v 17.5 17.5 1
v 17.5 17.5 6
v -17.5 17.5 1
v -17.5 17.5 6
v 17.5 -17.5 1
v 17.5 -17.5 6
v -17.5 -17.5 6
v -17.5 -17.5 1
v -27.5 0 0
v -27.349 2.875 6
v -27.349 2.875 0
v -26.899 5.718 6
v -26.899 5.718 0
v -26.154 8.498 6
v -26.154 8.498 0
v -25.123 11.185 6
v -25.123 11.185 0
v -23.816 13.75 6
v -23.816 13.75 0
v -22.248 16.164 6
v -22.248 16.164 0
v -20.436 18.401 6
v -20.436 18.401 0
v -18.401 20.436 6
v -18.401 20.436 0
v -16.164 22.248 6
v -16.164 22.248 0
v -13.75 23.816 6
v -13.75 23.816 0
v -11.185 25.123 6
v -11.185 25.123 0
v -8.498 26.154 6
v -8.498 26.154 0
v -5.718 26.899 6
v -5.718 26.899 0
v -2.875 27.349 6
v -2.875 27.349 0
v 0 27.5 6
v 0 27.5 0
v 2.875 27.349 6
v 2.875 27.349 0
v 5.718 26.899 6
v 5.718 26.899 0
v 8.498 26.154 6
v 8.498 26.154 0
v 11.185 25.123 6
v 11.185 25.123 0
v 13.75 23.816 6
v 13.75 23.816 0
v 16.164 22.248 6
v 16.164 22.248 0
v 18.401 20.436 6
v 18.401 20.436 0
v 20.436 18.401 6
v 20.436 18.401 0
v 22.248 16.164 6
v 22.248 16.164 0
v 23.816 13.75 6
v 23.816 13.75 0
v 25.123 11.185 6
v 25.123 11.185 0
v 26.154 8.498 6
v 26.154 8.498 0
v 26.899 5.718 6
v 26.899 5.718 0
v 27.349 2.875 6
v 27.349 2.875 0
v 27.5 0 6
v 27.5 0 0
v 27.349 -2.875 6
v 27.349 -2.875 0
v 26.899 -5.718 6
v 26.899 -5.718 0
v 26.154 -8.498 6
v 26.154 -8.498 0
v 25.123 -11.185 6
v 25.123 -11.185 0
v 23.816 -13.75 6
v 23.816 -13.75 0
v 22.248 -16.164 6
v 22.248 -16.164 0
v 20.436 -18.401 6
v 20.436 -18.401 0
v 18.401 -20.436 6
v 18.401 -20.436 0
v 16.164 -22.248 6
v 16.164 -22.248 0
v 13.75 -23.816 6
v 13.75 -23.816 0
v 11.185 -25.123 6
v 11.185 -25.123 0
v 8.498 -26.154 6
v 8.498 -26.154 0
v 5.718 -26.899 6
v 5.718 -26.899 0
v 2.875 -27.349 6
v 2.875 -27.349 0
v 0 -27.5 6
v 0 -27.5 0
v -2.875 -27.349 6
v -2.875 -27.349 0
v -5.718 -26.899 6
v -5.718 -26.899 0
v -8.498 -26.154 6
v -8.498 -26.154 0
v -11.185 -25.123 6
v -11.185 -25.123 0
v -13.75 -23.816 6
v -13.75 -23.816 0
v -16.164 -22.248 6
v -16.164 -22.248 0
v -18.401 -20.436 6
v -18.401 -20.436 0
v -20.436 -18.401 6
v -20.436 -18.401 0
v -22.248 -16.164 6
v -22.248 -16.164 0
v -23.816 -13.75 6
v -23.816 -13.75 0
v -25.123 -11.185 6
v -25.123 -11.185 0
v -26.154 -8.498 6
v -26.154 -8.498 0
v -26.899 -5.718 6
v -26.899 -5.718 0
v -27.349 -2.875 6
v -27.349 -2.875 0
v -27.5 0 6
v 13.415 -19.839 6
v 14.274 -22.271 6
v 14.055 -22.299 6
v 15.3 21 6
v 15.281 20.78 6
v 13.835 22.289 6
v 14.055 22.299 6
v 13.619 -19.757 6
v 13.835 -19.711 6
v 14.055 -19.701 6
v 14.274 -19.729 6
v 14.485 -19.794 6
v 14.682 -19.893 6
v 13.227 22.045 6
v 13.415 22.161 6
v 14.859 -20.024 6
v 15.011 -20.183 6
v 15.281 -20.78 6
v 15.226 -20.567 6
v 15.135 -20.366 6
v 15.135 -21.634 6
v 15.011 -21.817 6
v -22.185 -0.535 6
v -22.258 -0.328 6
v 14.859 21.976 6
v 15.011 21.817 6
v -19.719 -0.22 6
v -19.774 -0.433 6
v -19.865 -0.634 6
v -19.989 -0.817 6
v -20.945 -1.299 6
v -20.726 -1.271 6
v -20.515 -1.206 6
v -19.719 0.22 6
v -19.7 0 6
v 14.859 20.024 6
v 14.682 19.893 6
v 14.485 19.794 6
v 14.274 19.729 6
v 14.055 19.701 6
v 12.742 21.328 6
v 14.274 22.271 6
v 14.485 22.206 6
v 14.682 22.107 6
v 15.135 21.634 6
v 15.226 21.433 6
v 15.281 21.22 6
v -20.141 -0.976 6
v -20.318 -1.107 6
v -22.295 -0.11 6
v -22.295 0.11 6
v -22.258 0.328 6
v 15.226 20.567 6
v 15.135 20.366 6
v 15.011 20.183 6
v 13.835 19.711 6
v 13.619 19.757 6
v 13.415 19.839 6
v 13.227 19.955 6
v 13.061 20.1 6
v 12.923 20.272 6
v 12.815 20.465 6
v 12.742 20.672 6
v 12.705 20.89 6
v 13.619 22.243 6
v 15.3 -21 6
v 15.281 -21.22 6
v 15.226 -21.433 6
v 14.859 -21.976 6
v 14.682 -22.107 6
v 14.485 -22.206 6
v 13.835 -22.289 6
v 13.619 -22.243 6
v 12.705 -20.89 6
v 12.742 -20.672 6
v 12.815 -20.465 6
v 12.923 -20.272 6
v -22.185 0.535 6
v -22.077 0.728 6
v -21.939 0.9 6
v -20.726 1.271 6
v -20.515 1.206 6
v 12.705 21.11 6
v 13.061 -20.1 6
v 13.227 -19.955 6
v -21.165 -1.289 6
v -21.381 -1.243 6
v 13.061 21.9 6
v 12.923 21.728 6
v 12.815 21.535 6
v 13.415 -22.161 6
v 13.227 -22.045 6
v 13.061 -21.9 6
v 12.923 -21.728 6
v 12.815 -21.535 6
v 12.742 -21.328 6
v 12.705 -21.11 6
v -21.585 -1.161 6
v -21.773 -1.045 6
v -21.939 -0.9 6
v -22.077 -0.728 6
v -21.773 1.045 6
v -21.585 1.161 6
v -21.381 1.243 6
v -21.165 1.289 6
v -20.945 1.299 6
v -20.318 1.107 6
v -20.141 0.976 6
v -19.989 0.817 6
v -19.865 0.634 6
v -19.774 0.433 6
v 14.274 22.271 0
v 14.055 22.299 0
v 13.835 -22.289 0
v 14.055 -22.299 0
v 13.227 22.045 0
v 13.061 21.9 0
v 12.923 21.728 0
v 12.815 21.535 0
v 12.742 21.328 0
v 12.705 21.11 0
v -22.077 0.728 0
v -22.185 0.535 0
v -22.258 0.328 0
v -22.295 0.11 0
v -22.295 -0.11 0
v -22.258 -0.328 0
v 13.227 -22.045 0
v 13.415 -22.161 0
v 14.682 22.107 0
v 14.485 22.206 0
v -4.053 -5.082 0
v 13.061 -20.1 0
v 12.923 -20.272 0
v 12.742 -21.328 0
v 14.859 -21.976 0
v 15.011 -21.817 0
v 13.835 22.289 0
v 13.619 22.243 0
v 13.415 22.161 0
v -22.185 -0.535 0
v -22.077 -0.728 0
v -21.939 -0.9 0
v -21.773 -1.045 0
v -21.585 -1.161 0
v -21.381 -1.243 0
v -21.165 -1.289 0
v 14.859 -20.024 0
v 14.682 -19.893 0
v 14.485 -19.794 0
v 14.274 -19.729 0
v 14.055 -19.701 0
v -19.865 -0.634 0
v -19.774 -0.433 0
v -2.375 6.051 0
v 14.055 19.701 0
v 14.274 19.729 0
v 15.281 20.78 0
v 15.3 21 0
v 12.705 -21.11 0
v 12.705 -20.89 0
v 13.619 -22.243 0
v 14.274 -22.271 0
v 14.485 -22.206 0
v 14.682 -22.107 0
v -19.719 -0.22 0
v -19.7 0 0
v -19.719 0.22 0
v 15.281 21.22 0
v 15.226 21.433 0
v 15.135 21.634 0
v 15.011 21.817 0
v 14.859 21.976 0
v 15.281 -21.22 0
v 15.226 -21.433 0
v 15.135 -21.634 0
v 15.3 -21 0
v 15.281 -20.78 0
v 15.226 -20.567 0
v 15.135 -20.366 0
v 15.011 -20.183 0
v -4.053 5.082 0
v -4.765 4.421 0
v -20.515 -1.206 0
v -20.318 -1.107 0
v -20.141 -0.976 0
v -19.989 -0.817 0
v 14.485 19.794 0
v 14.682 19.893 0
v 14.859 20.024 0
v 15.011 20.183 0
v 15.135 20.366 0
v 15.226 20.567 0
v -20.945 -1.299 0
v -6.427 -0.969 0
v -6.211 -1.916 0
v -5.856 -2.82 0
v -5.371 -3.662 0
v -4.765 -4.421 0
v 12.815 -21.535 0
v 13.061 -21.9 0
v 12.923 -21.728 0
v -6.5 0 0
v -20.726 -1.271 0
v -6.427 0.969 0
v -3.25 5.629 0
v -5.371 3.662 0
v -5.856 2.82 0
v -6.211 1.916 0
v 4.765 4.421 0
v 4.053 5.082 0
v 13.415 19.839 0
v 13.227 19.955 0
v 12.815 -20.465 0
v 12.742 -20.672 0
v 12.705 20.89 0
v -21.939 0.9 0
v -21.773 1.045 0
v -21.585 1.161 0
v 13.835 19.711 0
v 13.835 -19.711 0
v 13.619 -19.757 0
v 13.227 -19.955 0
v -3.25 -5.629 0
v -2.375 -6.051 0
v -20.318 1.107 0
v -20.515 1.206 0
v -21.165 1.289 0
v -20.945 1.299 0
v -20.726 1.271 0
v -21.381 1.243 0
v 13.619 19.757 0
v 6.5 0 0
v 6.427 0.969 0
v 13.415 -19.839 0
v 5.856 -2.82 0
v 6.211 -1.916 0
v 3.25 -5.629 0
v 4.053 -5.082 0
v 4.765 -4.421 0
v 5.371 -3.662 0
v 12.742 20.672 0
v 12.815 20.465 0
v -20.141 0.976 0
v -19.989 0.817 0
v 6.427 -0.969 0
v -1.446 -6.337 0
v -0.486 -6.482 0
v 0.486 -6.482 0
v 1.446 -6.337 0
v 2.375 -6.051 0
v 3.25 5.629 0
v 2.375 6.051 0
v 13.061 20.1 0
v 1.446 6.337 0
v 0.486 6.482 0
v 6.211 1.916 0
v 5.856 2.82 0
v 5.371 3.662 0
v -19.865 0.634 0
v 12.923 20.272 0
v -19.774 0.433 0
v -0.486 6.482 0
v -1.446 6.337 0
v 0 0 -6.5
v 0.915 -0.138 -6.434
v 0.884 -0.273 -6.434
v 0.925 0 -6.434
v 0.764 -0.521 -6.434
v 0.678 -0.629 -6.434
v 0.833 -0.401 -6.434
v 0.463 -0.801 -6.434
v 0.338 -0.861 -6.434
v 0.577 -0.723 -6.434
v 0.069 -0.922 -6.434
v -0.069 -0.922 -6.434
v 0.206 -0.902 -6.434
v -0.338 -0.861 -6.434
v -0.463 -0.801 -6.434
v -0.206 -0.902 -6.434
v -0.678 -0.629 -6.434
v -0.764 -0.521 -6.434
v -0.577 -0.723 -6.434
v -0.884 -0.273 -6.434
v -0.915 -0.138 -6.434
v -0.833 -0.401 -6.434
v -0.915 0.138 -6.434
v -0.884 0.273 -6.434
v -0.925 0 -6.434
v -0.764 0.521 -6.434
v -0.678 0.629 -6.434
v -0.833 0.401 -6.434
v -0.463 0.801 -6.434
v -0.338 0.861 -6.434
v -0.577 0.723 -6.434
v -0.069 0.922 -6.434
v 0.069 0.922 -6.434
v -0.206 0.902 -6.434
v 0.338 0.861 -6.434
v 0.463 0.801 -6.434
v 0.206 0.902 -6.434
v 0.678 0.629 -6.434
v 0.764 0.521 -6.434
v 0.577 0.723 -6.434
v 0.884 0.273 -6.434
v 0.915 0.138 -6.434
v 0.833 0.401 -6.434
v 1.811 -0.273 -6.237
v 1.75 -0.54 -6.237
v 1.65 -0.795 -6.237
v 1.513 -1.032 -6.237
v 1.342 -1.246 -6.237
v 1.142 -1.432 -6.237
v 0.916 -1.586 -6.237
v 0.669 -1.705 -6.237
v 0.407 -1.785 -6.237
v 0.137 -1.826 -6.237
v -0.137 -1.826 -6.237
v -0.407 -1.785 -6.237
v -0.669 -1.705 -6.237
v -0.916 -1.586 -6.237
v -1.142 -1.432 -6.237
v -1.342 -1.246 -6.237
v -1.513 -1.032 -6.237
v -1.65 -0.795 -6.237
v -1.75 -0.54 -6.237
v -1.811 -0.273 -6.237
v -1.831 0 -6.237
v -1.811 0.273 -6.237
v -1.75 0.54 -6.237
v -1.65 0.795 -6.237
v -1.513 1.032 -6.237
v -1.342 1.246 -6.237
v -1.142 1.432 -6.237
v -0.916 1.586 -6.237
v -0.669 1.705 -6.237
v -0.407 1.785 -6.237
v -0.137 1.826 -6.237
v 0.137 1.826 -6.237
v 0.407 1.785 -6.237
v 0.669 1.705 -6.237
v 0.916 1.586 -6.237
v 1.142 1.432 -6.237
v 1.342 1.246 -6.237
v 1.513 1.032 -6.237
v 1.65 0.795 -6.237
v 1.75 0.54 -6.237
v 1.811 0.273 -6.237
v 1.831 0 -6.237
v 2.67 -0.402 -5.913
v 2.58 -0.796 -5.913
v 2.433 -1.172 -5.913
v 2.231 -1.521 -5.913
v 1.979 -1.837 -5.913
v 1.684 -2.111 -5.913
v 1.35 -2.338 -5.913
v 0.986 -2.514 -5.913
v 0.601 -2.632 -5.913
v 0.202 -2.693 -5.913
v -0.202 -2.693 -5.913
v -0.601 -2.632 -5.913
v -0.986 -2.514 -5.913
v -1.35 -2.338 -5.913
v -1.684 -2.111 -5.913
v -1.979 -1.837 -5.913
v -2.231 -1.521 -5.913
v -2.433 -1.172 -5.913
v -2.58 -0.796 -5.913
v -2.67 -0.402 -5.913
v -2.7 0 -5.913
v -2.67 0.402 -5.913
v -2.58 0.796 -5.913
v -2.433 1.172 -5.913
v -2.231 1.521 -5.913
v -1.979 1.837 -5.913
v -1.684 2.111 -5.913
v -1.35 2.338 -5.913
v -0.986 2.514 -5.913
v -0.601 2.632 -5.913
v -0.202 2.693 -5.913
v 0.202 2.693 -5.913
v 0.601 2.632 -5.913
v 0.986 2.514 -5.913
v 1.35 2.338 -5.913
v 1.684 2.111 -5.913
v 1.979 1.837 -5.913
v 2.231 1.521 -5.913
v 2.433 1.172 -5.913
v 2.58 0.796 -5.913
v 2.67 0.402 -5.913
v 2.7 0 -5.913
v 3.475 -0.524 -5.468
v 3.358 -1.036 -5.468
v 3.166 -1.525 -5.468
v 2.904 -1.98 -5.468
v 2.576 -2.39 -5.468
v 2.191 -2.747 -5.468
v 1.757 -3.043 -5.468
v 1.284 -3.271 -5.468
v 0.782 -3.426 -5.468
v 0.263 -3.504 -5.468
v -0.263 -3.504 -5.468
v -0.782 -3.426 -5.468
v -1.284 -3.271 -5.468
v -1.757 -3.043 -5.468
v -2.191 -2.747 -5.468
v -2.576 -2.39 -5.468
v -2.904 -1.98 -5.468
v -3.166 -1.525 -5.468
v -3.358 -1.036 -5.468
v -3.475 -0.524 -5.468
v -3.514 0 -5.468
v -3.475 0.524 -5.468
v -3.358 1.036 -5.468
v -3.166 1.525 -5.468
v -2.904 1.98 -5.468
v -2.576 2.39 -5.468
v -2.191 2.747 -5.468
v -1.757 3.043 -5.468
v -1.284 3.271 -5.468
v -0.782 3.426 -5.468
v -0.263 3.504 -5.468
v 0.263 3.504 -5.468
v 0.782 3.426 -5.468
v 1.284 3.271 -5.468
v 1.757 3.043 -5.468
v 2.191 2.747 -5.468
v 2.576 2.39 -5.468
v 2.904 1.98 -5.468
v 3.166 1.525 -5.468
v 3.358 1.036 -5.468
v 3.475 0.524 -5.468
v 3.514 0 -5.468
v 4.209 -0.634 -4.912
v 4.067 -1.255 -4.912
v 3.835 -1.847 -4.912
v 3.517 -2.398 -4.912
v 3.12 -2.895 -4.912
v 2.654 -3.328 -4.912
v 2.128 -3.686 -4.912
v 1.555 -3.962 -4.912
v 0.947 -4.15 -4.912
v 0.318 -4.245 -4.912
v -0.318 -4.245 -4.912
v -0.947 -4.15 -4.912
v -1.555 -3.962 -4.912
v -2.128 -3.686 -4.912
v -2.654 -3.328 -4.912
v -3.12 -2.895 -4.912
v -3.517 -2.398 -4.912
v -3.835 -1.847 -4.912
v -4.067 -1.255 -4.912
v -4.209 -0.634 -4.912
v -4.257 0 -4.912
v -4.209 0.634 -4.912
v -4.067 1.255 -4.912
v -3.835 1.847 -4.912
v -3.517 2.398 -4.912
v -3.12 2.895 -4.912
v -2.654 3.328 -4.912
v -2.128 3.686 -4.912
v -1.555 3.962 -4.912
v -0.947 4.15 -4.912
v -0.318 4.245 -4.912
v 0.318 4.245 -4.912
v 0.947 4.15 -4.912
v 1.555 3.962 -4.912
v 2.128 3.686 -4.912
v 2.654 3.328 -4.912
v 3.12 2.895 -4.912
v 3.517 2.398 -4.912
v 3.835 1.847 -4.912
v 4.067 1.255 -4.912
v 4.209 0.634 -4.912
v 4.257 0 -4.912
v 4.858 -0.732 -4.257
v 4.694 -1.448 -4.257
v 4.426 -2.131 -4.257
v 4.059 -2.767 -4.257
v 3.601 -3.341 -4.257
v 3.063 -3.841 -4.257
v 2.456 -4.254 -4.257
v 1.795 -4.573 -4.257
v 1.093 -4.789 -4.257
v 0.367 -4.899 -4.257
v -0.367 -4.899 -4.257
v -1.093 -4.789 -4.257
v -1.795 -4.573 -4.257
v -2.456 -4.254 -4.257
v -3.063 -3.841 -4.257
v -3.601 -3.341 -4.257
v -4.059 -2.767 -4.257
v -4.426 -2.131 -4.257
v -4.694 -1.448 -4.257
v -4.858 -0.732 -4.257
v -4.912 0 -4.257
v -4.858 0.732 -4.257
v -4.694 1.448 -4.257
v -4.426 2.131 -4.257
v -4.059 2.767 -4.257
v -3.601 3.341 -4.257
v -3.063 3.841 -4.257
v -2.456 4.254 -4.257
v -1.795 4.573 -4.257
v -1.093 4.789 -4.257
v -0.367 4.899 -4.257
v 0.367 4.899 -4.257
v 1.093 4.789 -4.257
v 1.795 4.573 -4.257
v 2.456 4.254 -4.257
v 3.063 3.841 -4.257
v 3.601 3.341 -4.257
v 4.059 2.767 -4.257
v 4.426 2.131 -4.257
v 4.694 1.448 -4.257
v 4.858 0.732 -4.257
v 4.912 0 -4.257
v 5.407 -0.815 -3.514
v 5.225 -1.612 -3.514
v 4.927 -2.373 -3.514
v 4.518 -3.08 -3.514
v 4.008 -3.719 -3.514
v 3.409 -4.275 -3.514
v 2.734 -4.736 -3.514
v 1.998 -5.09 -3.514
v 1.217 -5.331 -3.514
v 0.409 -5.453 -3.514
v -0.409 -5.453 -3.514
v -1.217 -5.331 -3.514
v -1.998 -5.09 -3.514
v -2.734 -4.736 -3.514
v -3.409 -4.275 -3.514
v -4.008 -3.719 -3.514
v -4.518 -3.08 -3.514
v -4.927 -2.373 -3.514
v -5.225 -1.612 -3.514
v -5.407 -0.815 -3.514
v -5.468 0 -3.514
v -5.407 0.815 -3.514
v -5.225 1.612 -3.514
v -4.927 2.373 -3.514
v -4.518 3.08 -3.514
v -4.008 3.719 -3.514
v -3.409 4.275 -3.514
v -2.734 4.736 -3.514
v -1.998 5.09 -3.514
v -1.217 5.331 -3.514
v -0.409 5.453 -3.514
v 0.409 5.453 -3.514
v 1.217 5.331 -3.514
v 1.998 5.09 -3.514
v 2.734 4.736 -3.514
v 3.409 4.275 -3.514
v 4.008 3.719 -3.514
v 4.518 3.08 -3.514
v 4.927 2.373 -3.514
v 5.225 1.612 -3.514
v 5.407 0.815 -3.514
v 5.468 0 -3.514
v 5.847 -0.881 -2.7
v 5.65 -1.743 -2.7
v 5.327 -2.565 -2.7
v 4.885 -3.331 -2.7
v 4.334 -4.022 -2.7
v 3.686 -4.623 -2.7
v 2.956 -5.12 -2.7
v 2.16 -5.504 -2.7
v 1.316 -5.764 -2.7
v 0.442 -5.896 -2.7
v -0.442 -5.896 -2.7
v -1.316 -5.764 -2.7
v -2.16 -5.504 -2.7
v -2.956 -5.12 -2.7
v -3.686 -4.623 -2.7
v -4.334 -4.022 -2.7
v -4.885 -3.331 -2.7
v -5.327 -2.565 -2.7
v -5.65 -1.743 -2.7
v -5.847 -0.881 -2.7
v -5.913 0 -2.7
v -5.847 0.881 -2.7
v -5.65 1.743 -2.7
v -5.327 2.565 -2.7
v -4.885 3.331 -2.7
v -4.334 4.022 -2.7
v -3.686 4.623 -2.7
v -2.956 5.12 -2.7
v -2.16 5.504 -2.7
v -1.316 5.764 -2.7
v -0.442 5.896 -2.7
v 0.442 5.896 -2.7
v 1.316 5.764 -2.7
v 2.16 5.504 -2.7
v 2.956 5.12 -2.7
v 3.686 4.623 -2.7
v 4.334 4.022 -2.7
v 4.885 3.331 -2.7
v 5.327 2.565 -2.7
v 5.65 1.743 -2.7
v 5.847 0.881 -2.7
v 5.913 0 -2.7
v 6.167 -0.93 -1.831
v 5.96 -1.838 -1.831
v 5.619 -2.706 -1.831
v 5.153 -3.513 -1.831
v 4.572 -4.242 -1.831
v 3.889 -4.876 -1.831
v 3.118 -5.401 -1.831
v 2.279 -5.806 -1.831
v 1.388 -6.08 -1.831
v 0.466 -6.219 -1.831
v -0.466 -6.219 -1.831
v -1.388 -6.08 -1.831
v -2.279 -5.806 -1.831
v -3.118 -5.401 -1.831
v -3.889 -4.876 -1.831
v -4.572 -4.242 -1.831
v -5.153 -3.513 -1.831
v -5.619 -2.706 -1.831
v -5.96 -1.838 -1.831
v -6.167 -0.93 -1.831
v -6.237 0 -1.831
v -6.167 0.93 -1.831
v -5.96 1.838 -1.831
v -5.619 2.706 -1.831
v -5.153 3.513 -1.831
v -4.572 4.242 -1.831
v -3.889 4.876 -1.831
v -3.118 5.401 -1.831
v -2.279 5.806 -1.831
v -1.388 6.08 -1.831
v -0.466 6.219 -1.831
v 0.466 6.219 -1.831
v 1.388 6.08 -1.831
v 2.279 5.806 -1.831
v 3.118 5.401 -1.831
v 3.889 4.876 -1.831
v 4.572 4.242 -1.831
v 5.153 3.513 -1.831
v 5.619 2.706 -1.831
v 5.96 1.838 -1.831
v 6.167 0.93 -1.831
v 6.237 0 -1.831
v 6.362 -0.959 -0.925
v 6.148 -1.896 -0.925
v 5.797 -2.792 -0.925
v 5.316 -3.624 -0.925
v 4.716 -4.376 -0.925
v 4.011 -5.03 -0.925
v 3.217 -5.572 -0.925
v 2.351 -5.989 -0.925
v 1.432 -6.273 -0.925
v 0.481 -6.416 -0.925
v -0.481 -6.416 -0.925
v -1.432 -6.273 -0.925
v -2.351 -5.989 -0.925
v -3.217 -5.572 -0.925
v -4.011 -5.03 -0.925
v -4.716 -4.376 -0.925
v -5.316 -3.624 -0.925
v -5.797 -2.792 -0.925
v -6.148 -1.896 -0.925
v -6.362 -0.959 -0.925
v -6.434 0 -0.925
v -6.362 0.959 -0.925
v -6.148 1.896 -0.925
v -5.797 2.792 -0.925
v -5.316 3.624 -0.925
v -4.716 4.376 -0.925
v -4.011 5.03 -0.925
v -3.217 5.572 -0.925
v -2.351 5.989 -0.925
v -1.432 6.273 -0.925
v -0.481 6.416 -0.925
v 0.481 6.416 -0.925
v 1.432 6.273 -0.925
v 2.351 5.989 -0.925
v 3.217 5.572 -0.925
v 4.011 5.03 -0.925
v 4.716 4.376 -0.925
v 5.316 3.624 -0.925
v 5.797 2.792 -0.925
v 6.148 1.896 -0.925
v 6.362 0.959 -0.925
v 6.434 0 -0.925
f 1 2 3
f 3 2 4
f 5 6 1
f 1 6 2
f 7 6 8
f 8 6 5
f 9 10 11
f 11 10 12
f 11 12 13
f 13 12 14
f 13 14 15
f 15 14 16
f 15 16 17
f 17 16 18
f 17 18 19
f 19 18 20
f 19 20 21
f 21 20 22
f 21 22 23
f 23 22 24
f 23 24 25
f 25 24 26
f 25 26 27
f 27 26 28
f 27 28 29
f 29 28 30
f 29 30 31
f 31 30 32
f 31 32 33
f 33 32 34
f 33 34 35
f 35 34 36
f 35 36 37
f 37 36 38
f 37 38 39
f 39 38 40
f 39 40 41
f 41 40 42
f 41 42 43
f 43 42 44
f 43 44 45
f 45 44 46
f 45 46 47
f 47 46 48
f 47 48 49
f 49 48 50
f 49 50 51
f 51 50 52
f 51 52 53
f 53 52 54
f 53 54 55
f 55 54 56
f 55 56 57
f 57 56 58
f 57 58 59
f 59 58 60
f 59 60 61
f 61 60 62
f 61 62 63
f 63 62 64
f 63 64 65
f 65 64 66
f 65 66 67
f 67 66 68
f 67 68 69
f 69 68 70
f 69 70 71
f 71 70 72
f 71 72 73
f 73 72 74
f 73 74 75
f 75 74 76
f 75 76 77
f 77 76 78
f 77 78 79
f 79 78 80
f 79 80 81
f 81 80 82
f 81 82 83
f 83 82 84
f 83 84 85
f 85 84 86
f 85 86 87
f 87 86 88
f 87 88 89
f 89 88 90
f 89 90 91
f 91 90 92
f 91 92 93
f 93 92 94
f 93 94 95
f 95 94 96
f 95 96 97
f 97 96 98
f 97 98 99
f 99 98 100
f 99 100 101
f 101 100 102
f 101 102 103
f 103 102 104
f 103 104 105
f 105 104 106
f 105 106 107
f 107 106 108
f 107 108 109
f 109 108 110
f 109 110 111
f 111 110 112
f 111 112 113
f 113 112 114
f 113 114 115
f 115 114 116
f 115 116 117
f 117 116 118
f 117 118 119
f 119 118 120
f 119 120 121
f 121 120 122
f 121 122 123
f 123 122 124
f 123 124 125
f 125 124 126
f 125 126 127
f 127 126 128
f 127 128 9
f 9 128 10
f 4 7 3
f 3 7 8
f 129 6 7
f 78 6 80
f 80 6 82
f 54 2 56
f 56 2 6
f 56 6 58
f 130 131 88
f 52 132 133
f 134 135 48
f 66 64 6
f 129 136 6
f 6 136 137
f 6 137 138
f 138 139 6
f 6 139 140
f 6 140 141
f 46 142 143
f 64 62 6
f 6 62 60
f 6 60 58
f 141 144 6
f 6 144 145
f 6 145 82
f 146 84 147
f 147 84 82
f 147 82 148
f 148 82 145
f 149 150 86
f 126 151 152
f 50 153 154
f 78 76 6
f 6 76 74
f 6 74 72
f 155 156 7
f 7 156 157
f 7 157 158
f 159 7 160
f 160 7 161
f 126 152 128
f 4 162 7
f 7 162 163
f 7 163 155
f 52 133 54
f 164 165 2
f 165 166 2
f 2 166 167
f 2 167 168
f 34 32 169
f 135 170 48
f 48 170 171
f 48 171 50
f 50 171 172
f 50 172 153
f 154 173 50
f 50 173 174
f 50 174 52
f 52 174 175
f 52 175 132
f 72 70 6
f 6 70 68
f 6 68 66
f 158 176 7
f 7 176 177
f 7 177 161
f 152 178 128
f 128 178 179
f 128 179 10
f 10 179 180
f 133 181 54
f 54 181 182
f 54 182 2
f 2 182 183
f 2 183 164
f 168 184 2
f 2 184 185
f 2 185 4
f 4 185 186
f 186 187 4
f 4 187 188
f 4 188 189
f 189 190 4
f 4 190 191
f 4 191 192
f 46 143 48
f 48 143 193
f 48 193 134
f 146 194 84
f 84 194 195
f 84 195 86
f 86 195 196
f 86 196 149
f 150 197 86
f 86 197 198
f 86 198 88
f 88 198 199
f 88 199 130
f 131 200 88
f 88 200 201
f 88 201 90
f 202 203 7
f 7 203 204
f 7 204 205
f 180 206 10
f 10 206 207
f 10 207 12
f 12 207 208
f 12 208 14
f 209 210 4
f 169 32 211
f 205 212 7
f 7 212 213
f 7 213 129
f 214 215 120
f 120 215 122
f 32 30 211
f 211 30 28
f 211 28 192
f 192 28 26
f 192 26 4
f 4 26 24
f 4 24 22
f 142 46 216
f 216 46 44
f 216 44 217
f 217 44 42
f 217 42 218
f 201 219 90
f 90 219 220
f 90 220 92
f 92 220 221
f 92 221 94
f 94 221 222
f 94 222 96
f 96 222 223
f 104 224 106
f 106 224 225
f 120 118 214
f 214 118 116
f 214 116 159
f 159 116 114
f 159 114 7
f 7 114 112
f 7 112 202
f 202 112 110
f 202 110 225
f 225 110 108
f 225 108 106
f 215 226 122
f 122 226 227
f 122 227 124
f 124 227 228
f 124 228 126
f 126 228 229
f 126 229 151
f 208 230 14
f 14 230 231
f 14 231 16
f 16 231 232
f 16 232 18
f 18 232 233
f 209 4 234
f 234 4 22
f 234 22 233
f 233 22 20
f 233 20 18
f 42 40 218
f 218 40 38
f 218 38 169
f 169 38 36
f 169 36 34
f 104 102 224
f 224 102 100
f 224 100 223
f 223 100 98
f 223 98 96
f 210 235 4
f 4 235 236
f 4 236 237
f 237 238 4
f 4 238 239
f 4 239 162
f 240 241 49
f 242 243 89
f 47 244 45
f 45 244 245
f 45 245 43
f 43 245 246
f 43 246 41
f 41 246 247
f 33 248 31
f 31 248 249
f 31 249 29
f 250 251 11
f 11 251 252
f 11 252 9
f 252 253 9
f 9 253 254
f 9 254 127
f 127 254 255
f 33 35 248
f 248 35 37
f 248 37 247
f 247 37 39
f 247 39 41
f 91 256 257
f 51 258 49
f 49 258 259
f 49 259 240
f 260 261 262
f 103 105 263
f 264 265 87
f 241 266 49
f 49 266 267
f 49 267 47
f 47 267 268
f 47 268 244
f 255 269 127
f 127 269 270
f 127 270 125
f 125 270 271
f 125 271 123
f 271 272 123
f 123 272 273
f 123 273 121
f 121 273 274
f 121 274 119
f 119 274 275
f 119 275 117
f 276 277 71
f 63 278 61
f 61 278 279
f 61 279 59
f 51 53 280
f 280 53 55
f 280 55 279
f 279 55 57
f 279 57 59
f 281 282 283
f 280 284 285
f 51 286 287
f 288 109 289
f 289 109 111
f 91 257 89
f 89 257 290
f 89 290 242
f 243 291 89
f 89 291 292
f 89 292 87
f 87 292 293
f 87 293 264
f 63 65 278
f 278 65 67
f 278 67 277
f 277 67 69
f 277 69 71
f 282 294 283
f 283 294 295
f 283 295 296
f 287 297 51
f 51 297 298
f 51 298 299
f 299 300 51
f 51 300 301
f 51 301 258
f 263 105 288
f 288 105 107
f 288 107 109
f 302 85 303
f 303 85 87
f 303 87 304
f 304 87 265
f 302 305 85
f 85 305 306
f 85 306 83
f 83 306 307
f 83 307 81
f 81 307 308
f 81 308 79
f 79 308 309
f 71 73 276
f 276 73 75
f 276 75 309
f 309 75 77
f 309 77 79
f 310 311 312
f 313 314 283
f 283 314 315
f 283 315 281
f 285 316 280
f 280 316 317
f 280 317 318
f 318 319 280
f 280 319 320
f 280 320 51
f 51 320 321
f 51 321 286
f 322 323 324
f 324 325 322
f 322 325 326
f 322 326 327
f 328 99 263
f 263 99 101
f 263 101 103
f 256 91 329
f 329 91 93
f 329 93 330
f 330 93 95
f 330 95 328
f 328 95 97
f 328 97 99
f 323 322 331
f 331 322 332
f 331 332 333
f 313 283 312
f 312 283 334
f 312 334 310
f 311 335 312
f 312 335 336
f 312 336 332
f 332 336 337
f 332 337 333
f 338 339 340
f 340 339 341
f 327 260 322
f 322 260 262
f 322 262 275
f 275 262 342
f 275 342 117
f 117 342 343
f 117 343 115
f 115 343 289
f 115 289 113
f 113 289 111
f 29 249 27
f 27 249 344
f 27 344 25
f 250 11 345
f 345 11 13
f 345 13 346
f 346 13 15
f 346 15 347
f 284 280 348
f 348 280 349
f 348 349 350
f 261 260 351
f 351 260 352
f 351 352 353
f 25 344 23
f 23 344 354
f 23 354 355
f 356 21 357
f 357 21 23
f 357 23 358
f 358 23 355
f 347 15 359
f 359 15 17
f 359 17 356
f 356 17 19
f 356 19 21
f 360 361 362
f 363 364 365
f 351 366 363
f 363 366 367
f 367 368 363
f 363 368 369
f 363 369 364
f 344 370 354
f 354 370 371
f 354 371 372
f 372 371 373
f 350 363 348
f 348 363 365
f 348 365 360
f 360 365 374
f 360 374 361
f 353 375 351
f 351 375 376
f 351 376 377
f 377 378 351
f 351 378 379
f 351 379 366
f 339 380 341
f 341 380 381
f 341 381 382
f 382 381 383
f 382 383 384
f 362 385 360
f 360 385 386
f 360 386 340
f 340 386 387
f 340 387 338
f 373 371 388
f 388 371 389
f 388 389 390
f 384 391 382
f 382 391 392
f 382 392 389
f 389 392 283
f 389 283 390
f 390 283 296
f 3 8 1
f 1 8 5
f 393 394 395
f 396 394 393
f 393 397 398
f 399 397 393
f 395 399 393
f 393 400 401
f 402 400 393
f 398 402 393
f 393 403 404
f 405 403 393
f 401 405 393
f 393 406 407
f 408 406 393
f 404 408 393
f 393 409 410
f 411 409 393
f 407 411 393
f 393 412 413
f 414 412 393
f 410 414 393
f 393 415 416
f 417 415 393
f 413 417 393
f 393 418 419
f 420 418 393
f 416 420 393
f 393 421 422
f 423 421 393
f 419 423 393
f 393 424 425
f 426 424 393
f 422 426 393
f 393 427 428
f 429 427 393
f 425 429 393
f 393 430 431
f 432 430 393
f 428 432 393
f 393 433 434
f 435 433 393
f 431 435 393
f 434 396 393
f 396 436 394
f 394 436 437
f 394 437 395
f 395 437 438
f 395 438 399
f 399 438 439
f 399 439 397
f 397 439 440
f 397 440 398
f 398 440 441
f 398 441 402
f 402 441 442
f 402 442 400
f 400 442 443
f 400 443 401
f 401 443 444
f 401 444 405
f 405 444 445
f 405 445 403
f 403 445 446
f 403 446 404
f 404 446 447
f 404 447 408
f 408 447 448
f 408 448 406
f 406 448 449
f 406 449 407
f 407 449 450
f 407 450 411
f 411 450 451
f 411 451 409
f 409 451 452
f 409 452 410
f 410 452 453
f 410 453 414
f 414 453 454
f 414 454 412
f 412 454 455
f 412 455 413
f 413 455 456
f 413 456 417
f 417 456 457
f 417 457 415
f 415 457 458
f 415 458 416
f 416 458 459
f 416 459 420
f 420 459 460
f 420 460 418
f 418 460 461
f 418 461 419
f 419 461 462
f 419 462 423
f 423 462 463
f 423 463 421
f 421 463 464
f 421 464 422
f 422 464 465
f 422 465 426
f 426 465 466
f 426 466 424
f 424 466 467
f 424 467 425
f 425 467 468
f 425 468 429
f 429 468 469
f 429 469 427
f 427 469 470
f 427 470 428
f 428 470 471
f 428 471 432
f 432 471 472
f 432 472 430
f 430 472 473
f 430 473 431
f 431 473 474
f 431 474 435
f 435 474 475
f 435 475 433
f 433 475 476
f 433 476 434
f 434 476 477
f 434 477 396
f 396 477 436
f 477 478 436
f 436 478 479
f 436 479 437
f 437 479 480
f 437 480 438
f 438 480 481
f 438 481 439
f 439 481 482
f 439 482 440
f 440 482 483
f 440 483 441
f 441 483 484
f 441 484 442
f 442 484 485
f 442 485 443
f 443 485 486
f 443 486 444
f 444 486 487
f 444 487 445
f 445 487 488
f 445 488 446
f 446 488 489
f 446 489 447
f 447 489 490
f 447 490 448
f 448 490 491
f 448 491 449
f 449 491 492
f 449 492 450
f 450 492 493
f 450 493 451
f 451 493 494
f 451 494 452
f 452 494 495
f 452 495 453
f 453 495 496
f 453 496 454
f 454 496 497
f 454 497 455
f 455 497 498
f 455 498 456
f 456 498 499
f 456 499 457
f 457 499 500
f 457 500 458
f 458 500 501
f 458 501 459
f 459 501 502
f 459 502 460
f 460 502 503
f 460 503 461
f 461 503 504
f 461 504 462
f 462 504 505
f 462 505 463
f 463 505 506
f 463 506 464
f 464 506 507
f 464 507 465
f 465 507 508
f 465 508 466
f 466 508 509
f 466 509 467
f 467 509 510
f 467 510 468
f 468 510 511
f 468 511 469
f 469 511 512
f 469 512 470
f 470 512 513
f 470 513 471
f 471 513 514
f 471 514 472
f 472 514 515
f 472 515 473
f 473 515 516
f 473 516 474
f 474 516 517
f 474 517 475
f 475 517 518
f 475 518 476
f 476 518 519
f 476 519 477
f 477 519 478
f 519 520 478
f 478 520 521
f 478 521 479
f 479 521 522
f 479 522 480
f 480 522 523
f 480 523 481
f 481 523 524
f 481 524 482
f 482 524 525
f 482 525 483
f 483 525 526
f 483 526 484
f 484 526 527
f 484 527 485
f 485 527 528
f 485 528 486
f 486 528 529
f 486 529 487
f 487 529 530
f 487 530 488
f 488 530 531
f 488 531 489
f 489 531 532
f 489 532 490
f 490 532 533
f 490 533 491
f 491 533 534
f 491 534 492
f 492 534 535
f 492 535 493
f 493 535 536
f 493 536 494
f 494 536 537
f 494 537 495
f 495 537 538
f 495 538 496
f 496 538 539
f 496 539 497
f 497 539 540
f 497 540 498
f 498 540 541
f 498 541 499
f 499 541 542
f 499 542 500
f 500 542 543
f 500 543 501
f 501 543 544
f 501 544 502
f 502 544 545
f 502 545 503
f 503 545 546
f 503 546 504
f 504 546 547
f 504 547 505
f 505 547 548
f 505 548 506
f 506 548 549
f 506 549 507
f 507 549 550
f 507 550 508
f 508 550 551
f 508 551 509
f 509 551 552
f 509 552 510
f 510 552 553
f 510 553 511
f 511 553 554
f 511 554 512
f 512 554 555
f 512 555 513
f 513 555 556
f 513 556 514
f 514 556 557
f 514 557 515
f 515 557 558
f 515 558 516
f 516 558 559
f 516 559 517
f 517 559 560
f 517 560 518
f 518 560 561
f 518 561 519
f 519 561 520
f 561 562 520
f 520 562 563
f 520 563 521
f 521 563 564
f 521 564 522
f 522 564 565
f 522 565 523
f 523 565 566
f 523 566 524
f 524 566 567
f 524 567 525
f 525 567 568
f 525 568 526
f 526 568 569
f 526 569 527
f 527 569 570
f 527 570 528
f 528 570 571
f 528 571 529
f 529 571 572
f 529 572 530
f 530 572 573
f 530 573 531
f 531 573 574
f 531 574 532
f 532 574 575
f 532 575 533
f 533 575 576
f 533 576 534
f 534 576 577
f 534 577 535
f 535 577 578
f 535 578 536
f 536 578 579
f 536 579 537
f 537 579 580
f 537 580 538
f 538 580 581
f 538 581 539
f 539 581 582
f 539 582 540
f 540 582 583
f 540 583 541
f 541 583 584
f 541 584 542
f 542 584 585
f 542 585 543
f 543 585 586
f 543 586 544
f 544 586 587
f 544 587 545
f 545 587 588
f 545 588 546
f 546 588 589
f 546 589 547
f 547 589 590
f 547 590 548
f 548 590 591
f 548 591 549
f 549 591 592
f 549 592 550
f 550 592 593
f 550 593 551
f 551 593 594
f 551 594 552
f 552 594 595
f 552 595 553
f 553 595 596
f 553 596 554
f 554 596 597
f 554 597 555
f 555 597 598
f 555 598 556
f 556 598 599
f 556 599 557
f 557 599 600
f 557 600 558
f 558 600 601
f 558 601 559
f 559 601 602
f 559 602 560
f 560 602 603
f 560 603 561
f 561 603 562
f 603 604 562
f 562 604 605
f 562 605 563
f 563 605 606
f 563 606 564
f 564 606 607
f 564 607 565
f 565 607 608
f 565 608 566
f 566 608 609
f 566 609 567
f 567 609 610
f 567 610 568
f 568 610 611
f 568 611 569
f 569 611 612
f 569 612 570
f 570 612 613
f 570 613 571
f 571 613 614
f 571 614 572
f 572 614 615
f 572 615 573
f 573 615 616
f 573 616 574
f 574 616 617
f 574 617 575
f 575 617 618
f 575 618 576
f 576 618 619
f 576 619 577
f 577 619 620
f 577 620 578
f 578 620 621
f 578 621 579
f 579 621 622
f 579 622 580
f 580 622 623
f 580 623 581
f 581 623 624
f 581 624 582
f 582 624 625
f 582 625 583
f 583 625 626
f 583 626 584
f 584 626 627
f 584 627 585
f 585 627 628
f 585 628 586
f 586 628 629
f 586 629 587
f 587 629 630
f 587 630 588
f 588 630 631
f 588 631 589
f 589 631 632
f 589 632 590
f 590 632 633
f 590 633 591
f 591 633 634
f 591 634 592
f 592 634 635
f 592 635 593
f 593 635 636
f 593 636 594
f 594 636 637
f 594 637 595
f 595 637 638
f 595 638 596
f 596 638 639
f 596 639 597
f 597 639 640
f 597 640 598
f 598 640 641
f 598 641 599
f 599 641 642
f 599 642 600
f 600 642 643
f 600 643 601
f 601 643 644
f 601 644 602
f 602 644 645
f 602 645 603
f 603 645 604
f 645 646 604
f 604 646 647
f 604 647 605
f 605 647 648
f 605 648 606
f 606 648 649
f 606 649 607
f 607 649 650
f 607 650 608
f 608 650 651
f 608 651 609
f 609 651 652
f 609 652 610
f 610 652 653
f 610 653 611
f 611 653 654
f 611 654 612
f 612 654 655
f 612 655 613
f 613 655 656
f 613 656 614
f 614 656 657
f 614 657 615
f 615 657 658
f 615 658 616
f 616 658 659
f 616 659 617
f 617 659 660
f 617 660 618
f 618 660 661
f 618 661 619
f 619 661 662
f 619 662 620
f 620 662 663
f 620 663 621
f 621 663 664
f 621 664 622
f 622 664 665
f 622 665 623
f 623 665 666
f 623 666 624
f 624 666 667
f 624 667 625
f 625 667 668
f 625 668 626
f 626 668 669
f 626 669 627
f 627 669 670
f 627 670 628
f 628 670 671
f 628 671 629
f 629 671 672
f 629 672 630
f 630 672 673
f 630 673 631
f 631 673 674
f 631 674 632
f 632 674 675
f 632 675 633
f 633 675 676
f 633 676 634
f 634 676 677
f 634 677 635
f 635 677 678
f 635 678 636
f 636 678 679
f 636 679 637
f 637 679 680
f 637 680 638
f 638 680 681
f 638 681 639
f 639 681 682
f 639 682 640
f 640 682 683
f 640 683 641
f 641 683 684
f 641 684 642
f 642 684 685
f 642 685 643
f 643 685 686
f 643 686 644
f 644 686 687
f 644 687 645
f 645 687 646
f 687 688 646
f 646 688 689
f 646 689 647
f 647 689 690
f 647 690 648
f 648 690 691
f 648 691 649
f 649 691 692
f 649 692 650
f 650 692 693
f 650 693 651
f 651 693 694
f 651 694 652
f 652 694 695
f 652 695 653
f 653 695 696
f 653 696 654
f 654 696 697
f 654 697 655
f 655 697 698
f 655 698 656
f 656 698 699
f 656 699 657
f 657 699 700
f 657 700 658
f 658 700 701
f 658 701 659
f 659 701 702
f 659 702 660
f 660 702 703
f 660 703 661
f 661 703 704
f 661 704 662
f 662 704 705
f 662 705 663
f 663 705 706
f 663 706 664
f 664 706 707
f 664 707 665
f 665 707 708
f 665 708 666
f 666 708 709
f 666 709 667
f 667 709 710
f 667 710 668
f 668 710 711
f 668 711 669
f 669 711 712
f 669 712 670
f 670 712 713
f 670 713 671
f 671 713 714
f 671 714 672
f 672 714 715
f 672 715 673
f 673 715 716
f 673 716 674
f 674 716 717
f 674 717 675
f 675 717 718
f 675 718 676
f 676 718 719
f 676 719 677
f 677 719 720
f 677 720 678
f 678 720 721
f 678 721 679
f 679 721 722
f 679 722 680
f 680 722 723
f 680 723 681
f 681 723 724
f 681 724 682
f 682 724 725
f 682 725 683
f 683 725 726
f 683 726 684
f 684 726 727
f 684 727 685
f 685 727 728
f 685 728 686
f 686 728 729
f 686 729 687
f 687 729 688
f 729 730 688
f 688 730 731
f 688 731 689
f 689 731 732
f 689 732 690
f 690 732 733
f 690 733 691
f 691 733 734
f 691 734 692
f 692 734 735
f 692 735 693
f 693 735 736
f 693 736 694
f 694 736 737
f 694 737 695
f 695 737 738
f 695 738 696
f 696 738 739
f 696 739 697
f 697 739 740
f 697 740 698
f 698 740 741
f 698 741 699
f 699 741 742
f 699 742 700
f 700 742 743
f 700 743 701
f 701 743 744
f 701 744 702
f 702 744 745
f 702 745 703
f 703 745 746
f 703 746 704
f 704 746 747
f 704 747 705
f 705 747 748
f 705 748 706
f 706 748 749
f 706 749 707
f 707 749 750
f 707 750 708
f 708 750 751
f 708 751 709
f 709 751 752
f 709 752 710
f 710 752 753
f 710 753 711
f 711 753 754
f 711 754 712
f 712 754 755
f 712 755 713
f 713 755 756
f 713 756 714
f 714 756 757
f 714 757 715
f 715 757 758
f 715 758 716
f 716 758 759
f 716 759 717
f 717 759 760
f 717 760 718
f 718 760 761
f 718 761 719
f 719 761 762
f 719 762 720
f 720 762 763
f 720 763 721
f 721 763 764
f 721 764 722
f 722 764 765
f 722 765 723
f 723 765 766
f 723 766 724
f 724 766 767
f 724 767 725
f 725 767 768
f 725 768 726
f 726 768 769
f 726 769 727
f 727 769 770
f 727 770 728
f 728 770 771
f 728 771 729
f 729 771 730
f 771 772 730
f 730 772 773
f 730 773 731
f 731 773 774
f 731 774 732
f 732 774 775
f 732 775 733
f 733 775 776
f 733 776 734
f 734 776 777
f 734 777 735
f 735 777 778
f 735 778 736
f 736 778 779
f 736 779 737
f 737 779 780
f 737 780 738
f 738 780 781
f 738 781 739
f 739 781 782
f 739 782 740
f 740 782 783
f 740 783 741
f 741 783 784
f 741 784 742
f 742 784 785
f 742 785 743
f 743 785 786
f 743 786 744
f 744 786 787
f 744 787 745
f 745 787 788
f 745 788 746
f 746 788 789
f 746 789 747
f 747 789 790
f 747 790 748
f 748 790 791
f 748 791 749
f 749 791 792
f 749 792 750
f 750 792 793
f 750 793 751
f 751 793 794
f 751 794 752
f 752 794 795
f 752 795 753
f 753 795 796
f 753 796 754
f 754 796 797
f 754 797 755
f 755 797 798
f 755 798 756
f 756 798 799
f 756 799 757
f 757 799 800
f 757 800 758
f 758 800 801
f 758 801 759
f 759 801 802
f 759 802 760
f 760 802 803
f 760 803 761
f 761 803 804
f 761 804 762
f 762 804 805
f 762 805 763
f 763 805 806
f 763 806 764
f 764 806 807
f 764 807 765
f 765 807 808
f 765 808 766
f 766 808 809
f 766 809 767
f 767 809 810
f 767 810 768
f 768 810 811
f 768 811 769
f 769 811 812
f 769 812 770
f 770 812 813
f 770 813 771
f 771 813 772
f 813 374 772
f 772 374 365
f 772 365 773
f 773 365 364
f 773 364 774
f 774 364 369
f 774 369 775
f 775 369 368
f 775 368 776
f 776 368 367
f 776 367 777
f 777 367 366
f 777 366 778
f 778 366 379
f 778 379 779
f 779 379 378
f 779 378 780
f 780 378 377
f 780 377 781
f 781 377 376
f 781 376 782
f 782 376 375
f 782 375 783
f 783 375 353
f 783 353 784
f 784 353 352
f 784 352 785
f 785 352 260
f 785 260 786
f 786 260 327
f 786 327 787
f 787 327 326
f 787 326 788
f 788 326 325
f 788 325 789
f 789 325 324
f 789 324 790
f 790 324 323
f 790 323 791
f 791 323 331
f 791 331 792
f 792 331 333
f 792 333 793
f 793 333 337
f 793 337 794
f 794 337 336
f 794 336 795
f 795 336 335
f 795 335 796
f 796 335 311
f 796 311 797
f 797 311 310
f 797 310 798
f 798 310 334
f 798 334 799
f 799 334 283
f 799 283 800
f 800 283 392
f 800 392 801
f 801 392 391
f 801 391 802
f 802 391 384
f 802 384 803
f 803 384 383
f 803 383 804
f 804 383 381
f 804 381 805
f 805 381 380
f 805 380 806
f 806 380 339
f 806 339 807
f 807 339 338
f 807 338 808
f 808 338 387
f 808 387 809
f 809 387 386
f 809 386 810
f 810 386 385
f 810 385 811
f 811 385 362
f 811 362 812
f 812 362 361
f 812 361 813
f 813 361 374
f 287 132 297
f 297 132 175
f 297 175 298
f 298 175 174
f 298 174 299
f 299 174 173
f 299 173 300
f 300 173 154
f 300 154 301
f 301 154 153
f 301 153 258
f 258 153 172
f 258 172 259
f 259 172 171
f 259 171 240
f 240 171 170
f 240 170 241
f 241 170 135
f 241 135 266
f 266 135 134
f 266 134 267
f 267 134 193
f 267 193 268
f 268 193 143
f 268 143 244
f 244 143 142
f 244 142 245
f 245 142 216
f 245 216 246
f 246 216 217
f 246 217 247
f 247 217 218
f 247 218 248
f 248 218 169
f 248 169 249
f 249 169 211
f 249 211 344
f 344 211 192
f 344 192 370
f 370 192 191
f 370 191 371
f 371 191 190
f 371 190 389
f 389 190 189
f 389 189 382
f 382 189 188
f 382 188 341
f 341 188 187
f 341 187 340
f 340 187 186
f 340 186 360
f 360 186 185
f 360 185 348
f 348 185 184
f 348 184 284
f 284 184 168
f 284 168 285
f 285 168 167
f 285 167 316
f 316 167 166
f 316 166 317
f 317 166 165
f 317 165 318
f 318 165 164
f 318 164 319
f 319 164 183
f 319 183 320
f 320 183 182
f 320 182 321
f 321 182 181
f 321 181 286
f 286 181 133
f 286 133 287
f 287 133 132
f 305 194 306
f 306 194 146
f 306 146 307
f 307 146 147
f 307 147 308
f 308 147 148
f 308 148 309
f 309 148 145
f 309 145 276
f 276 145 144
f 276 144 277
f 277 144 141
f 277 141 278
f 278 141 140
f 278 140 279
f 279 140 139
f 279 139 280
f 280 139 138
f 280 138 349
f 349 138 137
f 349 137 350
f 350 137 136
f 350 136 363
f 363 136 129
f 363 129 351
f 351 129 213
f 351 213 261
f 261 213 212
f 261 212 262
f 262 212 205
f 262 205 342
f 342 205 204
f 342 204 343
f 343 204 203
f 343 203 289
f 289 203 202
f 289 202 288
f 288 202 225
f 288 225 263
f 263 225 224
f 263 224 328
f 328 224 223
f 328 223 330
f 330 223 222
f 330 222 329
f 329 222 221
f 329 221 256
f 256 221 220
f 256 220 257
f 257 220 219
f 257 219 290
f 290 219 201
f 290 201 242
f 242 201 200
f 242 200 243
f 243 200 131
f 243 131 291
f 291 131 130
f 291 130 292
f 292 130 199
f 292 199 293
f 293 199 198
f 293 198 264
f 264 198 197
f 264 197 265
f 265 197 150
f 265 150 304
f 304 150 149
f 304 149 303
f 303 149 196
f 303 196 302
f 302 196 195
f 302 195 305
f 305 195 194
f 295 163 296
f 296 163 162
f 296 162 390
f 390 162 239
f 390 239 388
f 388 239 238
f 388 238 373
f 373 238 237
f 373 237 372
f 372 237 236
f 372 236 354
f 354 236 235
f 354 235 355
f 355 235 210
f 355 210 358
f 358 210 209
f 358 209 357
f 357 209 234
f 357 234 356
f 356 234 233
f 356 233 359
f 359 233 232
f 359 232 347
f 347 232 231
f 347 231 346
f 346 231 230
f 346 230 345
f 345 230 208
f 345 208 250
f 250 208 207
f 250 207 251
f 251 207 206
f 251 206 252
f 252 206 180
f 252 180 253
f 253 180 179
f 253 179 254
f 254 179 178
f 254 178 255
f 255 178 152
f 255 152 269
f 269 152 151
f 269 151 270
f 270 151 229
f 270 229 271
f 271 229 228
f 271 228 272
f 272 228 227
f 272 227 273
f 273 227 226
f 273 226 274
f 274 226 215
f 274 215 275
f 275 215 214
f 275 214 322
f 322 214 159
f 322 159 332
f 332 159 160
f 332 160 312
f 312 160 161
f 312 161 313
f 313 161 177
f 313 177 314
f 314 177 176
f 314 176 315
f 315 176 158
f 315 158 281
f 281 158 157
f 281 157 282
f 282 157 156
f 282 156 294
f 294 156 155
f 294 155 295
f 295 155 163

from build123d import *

# Parameters (mm, degrees)
SKETCH1_R            = 27.5
SKETCH1_W            = 35
SKETCH1_H            = 35
BOSS_EXTRUDE1_DEPTH  = 6
SKETCH1_3_W          = 35
SKETCH1_3_H          = 35
BOSS_EXTRUDE2_DEPTH  = 1
M2_CLEARANCE_HOLE1_D = 2.6


with BuildPart() as part:
    # Sketch1 → Boss-Extrude1 (new body)
    with BuildSketch(Plane.XY):
        Circle(SKETCH1_R)
        Rectangle(SKETCH1_W, SKETCH1_H, mode=Mode.SUBTRACT)
    extrude(amount=BOSS_EXTRUDE1_DEPTH)

    # Sketch1<3> → Boss-Extrude2 (add)
    with BuildSketch(Plane.XY):
        Rectangle(SKETCH1_3_W, SKETCH1_3_H)
    extrude(amount=BOSS_EXTRUDE2_DEPTH)

    # Sketch2 → Revolve1 (revolve)
    with BuildSketch(Plane(origin=(0, 0, 0), x_dir=(1, 0, 0), z_dir=(0, 1, 0))):
        with BuildLine():
            Line((0, 6.5), (0, 0))
            Line((0, 0), (-6.5, 0))
            ThreePointArc((-6.5, 0), (-4.596194078, 4.596194078), (0, 6.5))
        make_face()
    revolve(axis=Axis((0, 0, -15), (0, 0, 1)))

    # M2 Clearance Hole1 (through all)
    with Locations(Plane.XY.offset(6)):
        with Locations((-21, 0), (14, -21), (14, 21)):
            Hole(M2_CLEARANCE_HOLE1_D / 2)


solid = part.part
